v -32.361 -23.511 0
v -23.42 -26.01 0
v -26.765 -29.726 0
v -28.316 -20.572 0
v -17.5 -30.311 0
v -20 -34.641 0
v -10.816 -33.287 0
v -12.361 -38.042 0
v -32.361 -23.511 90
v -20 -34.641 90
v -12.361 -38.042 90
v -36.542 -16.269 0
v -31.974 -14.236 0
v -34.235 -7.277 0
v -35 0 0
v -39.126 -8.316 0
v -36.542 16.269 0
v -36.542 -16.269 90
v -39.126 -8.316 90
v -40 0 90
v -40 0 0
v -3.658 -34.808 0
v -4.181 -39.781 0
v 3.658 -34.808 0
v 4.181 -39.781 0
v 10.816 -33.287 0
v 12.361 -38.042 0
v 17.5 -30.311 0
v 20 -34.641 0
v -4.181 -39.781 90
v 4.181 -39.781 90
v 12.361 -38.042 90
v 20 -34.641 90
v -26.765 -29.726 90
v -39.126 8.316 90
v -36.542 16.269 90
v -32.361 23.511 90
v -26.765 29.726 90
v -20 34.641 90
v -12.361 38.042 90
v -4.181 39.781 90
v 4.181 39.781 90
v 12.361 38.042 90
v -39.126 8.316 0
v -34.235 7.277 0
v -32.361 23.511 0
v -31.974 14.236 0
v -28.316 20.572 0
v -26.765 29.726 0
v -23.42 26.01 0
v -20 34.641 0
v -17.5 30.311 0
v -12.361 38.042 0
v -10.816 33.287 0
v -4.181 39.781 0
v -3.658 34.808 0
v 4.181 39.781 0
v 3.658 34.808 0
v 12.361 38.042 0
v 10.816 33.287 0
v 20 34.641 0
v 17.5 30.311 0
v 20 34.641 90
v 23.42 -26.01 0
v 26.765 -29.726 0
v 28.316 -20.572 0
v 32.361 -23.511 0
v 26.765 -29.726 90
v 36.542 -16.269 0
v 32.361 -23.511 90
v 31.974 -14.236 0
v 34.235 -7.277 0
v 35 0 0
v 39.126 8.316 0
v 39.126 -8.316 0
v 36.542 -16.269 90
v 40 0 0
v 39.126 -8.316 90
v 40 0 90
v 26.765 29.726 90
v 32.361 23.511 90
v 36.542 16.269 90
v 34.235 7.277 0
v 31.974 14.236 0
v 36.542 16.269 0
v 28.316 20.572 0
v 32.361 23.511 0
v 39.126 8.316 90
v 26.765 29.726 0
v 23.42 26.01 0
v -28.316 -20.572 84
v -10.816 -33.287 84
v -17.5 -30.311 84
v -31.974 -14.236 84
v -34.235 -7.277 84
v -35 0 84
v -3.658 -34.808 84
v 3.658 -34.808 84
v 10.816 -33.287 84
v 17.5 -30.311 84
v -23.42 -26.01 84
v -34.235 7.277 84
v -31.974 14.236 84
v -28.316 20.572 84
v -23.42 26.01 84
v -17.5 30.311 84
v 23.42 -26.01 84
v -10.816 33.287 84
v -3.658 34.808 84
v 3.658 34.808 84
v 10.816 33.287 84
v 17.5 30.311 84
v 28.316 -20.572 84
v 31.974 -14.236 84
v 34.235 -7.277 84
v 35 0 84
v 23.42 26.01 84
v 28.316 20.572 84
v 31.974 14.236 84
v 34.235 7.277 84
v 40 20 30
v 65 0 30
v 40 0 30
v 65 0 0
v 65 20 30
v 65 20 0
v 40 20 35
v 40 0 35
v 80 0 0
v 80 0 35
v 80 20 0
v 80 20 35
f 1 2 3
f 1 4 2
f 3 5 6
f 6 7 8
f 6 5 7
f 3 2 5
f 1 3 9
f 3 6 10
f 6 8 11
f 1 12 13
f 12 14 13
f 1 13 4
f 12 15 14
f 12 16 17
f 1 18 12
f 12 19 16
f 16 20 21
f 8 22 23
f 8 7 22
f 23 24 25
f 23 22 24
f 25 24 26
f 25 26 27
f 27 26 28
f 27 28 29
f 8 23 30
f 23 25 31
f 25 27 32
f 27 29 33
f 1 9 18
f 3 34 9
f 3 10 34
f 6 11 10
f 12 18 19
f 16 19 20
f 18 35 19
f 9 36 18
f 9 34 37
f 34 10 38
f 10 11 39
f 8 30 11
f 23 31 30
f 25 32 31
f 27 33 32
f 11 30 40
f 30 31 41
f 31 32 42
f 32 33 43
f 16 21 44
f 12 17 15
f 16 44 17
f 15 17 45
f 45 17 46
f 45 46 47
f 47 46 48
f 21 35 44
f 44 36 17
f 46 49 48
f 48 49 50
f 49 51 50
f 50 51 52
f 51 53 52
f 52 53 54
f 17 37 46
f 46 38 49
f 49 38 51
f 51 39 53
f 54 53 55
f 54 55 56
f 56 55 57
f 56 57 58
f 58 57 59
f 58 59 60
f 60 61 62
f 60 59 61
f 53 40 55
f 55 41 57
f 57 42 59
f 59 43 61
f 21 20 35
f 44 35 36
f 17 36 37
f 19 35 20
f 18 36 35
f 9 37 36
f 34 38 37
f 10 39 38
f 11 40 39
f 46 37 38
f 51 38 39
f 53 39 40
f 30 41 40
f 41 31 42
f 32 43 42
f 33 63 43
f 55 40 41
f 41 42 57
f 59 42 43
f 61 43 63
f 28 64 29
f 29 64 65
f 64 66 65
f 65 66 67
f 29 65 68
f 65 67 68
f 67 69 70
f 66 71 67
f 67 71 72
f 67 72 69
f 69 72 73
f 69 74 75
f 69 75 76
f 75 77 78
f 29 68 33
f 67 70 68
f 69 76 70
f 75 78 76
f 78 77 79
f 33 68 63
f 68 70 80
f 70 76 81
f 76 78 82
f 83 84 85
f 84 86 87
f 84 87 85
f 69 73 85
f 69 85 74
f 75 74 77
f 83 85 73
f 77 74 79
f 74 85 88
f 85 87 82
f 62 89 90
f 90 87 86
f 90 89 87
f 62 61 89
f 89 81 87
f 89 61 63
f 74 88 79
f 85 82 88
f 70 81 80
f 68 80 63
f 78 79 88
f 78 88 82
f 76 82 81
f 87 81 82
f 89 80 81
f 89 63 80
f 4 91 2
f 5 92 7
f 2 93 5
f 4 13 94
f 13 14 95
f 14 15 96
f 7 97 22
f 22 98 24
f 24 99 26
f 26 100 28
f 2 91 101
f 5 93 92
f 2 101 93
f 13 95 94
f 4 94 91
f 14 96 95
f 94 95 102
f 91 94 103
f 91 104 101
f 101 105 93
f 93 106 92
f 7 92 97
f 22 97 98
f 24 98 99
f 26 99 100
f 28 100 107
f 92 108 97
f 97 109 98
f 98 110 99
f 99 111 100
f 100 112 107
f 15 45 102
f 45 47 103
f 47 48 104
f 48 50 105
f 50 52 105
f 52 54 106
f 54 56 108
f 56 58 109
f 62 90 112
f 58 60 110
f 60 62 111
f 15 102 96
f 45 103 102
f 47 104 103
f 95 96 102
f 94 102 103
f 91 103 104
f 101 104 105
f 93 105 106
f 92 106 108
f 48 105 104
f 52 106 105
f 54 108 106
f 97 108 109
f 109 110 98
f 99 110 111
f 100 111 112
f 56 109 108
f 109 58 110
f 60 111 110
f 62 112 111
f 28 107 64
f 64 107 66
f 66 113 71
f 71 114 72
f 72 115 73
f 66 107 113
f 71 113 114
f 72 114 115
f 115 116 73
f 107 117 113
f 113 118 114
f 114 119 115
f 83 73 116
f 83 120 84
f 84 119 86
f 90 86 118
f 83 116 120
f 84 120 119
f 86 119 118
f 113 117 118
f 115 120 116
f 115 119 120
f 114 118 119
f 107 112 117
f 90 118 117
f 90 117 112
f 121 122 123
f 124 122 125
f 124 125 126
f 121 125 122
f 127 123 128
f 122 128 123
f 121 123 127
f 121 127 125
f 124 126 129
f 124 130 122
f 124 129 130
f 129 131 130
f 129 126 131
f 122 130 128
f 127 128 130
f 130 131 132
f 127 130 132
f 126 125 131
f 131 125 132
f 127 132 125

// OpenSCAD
// OpenSCAD Mug with Handle
// Main Body:
//   Outer Diameter: 80mm (Radius 40mm)
//   Inner Diameter: 70mm (Radius 35mm)
//   Height: 90mm
//   Bottom Thickness: 6mm
// Handle:
//   Attached to +X side
//   D-shape (Outer semicircle, Body side straight line)
//   Inner Space: 30mm height, 25mm width
//   Position: Near vertical center (Z=45)

module mug() {
    // Outer Cylinder
    difference() {
        cylinder(h=90, r=40, center=false);
        
        // Inner Void (Liquid Capacity)
        // Inner Diameter 70mm -> Radius 35mm
        // Bottom Thickness 6mm -> Void starts at Z=6
        cylinder(h=84, r=35, center=false);
    }
}

module handle() {
    // Handle Geometry
    // Position: Center X=40 (Mug Surface), Center Z=45 (Mug Vertical Center)
    // Handle Material Thickness: 15mm (X=40 to 55)
    // Inner Space Width: 25mm (X=55 to 80)
    // Inner Space Height: 30mm (Z=37.5 to 52.5)
    // Outer Handle Height: 35mm (Z=36.25 to 53.75)
    // Handle Width (Y): 20mm (Y=-10 to 10)
    
    // 1. Create Solid Handle Block
    // This block is attached to the mug surface (X=40)
    difference() {
        // Main solid block
        cube([40, 20, 35], center=[40, 0, 45]);
        
        // Inner Void (Finger Space)
        // Width 25mm, Height 30mm
        // Starts at X=55 (after material thickness 15mm)
        // Centered at Z=45
        difference() {
            // Void block
            cube([25, 25, 30], center=[62.5, 0, 45]);
            
            // Rounded corners for D-shape profile (Outer side semicircle)
            // Subtract small cylinders at the top and bottom corners to round the outer edge
            // Radius 5mm, Height 30mm (covering the handle height)
            // Position at the outer edge (X=80, Y=10) and (X=80, Y=-10)
            translate([80, 10, 45]) {
                cylinder(h=30, r=5, center=false);
            }
            translate([80, -10, 45]) {
                cylinder(h=30, r=5, center=false);
            }
        }
    }
}

union() {
    mug();
    translate([40, 0, 0]) {
        handle();
    }
}
